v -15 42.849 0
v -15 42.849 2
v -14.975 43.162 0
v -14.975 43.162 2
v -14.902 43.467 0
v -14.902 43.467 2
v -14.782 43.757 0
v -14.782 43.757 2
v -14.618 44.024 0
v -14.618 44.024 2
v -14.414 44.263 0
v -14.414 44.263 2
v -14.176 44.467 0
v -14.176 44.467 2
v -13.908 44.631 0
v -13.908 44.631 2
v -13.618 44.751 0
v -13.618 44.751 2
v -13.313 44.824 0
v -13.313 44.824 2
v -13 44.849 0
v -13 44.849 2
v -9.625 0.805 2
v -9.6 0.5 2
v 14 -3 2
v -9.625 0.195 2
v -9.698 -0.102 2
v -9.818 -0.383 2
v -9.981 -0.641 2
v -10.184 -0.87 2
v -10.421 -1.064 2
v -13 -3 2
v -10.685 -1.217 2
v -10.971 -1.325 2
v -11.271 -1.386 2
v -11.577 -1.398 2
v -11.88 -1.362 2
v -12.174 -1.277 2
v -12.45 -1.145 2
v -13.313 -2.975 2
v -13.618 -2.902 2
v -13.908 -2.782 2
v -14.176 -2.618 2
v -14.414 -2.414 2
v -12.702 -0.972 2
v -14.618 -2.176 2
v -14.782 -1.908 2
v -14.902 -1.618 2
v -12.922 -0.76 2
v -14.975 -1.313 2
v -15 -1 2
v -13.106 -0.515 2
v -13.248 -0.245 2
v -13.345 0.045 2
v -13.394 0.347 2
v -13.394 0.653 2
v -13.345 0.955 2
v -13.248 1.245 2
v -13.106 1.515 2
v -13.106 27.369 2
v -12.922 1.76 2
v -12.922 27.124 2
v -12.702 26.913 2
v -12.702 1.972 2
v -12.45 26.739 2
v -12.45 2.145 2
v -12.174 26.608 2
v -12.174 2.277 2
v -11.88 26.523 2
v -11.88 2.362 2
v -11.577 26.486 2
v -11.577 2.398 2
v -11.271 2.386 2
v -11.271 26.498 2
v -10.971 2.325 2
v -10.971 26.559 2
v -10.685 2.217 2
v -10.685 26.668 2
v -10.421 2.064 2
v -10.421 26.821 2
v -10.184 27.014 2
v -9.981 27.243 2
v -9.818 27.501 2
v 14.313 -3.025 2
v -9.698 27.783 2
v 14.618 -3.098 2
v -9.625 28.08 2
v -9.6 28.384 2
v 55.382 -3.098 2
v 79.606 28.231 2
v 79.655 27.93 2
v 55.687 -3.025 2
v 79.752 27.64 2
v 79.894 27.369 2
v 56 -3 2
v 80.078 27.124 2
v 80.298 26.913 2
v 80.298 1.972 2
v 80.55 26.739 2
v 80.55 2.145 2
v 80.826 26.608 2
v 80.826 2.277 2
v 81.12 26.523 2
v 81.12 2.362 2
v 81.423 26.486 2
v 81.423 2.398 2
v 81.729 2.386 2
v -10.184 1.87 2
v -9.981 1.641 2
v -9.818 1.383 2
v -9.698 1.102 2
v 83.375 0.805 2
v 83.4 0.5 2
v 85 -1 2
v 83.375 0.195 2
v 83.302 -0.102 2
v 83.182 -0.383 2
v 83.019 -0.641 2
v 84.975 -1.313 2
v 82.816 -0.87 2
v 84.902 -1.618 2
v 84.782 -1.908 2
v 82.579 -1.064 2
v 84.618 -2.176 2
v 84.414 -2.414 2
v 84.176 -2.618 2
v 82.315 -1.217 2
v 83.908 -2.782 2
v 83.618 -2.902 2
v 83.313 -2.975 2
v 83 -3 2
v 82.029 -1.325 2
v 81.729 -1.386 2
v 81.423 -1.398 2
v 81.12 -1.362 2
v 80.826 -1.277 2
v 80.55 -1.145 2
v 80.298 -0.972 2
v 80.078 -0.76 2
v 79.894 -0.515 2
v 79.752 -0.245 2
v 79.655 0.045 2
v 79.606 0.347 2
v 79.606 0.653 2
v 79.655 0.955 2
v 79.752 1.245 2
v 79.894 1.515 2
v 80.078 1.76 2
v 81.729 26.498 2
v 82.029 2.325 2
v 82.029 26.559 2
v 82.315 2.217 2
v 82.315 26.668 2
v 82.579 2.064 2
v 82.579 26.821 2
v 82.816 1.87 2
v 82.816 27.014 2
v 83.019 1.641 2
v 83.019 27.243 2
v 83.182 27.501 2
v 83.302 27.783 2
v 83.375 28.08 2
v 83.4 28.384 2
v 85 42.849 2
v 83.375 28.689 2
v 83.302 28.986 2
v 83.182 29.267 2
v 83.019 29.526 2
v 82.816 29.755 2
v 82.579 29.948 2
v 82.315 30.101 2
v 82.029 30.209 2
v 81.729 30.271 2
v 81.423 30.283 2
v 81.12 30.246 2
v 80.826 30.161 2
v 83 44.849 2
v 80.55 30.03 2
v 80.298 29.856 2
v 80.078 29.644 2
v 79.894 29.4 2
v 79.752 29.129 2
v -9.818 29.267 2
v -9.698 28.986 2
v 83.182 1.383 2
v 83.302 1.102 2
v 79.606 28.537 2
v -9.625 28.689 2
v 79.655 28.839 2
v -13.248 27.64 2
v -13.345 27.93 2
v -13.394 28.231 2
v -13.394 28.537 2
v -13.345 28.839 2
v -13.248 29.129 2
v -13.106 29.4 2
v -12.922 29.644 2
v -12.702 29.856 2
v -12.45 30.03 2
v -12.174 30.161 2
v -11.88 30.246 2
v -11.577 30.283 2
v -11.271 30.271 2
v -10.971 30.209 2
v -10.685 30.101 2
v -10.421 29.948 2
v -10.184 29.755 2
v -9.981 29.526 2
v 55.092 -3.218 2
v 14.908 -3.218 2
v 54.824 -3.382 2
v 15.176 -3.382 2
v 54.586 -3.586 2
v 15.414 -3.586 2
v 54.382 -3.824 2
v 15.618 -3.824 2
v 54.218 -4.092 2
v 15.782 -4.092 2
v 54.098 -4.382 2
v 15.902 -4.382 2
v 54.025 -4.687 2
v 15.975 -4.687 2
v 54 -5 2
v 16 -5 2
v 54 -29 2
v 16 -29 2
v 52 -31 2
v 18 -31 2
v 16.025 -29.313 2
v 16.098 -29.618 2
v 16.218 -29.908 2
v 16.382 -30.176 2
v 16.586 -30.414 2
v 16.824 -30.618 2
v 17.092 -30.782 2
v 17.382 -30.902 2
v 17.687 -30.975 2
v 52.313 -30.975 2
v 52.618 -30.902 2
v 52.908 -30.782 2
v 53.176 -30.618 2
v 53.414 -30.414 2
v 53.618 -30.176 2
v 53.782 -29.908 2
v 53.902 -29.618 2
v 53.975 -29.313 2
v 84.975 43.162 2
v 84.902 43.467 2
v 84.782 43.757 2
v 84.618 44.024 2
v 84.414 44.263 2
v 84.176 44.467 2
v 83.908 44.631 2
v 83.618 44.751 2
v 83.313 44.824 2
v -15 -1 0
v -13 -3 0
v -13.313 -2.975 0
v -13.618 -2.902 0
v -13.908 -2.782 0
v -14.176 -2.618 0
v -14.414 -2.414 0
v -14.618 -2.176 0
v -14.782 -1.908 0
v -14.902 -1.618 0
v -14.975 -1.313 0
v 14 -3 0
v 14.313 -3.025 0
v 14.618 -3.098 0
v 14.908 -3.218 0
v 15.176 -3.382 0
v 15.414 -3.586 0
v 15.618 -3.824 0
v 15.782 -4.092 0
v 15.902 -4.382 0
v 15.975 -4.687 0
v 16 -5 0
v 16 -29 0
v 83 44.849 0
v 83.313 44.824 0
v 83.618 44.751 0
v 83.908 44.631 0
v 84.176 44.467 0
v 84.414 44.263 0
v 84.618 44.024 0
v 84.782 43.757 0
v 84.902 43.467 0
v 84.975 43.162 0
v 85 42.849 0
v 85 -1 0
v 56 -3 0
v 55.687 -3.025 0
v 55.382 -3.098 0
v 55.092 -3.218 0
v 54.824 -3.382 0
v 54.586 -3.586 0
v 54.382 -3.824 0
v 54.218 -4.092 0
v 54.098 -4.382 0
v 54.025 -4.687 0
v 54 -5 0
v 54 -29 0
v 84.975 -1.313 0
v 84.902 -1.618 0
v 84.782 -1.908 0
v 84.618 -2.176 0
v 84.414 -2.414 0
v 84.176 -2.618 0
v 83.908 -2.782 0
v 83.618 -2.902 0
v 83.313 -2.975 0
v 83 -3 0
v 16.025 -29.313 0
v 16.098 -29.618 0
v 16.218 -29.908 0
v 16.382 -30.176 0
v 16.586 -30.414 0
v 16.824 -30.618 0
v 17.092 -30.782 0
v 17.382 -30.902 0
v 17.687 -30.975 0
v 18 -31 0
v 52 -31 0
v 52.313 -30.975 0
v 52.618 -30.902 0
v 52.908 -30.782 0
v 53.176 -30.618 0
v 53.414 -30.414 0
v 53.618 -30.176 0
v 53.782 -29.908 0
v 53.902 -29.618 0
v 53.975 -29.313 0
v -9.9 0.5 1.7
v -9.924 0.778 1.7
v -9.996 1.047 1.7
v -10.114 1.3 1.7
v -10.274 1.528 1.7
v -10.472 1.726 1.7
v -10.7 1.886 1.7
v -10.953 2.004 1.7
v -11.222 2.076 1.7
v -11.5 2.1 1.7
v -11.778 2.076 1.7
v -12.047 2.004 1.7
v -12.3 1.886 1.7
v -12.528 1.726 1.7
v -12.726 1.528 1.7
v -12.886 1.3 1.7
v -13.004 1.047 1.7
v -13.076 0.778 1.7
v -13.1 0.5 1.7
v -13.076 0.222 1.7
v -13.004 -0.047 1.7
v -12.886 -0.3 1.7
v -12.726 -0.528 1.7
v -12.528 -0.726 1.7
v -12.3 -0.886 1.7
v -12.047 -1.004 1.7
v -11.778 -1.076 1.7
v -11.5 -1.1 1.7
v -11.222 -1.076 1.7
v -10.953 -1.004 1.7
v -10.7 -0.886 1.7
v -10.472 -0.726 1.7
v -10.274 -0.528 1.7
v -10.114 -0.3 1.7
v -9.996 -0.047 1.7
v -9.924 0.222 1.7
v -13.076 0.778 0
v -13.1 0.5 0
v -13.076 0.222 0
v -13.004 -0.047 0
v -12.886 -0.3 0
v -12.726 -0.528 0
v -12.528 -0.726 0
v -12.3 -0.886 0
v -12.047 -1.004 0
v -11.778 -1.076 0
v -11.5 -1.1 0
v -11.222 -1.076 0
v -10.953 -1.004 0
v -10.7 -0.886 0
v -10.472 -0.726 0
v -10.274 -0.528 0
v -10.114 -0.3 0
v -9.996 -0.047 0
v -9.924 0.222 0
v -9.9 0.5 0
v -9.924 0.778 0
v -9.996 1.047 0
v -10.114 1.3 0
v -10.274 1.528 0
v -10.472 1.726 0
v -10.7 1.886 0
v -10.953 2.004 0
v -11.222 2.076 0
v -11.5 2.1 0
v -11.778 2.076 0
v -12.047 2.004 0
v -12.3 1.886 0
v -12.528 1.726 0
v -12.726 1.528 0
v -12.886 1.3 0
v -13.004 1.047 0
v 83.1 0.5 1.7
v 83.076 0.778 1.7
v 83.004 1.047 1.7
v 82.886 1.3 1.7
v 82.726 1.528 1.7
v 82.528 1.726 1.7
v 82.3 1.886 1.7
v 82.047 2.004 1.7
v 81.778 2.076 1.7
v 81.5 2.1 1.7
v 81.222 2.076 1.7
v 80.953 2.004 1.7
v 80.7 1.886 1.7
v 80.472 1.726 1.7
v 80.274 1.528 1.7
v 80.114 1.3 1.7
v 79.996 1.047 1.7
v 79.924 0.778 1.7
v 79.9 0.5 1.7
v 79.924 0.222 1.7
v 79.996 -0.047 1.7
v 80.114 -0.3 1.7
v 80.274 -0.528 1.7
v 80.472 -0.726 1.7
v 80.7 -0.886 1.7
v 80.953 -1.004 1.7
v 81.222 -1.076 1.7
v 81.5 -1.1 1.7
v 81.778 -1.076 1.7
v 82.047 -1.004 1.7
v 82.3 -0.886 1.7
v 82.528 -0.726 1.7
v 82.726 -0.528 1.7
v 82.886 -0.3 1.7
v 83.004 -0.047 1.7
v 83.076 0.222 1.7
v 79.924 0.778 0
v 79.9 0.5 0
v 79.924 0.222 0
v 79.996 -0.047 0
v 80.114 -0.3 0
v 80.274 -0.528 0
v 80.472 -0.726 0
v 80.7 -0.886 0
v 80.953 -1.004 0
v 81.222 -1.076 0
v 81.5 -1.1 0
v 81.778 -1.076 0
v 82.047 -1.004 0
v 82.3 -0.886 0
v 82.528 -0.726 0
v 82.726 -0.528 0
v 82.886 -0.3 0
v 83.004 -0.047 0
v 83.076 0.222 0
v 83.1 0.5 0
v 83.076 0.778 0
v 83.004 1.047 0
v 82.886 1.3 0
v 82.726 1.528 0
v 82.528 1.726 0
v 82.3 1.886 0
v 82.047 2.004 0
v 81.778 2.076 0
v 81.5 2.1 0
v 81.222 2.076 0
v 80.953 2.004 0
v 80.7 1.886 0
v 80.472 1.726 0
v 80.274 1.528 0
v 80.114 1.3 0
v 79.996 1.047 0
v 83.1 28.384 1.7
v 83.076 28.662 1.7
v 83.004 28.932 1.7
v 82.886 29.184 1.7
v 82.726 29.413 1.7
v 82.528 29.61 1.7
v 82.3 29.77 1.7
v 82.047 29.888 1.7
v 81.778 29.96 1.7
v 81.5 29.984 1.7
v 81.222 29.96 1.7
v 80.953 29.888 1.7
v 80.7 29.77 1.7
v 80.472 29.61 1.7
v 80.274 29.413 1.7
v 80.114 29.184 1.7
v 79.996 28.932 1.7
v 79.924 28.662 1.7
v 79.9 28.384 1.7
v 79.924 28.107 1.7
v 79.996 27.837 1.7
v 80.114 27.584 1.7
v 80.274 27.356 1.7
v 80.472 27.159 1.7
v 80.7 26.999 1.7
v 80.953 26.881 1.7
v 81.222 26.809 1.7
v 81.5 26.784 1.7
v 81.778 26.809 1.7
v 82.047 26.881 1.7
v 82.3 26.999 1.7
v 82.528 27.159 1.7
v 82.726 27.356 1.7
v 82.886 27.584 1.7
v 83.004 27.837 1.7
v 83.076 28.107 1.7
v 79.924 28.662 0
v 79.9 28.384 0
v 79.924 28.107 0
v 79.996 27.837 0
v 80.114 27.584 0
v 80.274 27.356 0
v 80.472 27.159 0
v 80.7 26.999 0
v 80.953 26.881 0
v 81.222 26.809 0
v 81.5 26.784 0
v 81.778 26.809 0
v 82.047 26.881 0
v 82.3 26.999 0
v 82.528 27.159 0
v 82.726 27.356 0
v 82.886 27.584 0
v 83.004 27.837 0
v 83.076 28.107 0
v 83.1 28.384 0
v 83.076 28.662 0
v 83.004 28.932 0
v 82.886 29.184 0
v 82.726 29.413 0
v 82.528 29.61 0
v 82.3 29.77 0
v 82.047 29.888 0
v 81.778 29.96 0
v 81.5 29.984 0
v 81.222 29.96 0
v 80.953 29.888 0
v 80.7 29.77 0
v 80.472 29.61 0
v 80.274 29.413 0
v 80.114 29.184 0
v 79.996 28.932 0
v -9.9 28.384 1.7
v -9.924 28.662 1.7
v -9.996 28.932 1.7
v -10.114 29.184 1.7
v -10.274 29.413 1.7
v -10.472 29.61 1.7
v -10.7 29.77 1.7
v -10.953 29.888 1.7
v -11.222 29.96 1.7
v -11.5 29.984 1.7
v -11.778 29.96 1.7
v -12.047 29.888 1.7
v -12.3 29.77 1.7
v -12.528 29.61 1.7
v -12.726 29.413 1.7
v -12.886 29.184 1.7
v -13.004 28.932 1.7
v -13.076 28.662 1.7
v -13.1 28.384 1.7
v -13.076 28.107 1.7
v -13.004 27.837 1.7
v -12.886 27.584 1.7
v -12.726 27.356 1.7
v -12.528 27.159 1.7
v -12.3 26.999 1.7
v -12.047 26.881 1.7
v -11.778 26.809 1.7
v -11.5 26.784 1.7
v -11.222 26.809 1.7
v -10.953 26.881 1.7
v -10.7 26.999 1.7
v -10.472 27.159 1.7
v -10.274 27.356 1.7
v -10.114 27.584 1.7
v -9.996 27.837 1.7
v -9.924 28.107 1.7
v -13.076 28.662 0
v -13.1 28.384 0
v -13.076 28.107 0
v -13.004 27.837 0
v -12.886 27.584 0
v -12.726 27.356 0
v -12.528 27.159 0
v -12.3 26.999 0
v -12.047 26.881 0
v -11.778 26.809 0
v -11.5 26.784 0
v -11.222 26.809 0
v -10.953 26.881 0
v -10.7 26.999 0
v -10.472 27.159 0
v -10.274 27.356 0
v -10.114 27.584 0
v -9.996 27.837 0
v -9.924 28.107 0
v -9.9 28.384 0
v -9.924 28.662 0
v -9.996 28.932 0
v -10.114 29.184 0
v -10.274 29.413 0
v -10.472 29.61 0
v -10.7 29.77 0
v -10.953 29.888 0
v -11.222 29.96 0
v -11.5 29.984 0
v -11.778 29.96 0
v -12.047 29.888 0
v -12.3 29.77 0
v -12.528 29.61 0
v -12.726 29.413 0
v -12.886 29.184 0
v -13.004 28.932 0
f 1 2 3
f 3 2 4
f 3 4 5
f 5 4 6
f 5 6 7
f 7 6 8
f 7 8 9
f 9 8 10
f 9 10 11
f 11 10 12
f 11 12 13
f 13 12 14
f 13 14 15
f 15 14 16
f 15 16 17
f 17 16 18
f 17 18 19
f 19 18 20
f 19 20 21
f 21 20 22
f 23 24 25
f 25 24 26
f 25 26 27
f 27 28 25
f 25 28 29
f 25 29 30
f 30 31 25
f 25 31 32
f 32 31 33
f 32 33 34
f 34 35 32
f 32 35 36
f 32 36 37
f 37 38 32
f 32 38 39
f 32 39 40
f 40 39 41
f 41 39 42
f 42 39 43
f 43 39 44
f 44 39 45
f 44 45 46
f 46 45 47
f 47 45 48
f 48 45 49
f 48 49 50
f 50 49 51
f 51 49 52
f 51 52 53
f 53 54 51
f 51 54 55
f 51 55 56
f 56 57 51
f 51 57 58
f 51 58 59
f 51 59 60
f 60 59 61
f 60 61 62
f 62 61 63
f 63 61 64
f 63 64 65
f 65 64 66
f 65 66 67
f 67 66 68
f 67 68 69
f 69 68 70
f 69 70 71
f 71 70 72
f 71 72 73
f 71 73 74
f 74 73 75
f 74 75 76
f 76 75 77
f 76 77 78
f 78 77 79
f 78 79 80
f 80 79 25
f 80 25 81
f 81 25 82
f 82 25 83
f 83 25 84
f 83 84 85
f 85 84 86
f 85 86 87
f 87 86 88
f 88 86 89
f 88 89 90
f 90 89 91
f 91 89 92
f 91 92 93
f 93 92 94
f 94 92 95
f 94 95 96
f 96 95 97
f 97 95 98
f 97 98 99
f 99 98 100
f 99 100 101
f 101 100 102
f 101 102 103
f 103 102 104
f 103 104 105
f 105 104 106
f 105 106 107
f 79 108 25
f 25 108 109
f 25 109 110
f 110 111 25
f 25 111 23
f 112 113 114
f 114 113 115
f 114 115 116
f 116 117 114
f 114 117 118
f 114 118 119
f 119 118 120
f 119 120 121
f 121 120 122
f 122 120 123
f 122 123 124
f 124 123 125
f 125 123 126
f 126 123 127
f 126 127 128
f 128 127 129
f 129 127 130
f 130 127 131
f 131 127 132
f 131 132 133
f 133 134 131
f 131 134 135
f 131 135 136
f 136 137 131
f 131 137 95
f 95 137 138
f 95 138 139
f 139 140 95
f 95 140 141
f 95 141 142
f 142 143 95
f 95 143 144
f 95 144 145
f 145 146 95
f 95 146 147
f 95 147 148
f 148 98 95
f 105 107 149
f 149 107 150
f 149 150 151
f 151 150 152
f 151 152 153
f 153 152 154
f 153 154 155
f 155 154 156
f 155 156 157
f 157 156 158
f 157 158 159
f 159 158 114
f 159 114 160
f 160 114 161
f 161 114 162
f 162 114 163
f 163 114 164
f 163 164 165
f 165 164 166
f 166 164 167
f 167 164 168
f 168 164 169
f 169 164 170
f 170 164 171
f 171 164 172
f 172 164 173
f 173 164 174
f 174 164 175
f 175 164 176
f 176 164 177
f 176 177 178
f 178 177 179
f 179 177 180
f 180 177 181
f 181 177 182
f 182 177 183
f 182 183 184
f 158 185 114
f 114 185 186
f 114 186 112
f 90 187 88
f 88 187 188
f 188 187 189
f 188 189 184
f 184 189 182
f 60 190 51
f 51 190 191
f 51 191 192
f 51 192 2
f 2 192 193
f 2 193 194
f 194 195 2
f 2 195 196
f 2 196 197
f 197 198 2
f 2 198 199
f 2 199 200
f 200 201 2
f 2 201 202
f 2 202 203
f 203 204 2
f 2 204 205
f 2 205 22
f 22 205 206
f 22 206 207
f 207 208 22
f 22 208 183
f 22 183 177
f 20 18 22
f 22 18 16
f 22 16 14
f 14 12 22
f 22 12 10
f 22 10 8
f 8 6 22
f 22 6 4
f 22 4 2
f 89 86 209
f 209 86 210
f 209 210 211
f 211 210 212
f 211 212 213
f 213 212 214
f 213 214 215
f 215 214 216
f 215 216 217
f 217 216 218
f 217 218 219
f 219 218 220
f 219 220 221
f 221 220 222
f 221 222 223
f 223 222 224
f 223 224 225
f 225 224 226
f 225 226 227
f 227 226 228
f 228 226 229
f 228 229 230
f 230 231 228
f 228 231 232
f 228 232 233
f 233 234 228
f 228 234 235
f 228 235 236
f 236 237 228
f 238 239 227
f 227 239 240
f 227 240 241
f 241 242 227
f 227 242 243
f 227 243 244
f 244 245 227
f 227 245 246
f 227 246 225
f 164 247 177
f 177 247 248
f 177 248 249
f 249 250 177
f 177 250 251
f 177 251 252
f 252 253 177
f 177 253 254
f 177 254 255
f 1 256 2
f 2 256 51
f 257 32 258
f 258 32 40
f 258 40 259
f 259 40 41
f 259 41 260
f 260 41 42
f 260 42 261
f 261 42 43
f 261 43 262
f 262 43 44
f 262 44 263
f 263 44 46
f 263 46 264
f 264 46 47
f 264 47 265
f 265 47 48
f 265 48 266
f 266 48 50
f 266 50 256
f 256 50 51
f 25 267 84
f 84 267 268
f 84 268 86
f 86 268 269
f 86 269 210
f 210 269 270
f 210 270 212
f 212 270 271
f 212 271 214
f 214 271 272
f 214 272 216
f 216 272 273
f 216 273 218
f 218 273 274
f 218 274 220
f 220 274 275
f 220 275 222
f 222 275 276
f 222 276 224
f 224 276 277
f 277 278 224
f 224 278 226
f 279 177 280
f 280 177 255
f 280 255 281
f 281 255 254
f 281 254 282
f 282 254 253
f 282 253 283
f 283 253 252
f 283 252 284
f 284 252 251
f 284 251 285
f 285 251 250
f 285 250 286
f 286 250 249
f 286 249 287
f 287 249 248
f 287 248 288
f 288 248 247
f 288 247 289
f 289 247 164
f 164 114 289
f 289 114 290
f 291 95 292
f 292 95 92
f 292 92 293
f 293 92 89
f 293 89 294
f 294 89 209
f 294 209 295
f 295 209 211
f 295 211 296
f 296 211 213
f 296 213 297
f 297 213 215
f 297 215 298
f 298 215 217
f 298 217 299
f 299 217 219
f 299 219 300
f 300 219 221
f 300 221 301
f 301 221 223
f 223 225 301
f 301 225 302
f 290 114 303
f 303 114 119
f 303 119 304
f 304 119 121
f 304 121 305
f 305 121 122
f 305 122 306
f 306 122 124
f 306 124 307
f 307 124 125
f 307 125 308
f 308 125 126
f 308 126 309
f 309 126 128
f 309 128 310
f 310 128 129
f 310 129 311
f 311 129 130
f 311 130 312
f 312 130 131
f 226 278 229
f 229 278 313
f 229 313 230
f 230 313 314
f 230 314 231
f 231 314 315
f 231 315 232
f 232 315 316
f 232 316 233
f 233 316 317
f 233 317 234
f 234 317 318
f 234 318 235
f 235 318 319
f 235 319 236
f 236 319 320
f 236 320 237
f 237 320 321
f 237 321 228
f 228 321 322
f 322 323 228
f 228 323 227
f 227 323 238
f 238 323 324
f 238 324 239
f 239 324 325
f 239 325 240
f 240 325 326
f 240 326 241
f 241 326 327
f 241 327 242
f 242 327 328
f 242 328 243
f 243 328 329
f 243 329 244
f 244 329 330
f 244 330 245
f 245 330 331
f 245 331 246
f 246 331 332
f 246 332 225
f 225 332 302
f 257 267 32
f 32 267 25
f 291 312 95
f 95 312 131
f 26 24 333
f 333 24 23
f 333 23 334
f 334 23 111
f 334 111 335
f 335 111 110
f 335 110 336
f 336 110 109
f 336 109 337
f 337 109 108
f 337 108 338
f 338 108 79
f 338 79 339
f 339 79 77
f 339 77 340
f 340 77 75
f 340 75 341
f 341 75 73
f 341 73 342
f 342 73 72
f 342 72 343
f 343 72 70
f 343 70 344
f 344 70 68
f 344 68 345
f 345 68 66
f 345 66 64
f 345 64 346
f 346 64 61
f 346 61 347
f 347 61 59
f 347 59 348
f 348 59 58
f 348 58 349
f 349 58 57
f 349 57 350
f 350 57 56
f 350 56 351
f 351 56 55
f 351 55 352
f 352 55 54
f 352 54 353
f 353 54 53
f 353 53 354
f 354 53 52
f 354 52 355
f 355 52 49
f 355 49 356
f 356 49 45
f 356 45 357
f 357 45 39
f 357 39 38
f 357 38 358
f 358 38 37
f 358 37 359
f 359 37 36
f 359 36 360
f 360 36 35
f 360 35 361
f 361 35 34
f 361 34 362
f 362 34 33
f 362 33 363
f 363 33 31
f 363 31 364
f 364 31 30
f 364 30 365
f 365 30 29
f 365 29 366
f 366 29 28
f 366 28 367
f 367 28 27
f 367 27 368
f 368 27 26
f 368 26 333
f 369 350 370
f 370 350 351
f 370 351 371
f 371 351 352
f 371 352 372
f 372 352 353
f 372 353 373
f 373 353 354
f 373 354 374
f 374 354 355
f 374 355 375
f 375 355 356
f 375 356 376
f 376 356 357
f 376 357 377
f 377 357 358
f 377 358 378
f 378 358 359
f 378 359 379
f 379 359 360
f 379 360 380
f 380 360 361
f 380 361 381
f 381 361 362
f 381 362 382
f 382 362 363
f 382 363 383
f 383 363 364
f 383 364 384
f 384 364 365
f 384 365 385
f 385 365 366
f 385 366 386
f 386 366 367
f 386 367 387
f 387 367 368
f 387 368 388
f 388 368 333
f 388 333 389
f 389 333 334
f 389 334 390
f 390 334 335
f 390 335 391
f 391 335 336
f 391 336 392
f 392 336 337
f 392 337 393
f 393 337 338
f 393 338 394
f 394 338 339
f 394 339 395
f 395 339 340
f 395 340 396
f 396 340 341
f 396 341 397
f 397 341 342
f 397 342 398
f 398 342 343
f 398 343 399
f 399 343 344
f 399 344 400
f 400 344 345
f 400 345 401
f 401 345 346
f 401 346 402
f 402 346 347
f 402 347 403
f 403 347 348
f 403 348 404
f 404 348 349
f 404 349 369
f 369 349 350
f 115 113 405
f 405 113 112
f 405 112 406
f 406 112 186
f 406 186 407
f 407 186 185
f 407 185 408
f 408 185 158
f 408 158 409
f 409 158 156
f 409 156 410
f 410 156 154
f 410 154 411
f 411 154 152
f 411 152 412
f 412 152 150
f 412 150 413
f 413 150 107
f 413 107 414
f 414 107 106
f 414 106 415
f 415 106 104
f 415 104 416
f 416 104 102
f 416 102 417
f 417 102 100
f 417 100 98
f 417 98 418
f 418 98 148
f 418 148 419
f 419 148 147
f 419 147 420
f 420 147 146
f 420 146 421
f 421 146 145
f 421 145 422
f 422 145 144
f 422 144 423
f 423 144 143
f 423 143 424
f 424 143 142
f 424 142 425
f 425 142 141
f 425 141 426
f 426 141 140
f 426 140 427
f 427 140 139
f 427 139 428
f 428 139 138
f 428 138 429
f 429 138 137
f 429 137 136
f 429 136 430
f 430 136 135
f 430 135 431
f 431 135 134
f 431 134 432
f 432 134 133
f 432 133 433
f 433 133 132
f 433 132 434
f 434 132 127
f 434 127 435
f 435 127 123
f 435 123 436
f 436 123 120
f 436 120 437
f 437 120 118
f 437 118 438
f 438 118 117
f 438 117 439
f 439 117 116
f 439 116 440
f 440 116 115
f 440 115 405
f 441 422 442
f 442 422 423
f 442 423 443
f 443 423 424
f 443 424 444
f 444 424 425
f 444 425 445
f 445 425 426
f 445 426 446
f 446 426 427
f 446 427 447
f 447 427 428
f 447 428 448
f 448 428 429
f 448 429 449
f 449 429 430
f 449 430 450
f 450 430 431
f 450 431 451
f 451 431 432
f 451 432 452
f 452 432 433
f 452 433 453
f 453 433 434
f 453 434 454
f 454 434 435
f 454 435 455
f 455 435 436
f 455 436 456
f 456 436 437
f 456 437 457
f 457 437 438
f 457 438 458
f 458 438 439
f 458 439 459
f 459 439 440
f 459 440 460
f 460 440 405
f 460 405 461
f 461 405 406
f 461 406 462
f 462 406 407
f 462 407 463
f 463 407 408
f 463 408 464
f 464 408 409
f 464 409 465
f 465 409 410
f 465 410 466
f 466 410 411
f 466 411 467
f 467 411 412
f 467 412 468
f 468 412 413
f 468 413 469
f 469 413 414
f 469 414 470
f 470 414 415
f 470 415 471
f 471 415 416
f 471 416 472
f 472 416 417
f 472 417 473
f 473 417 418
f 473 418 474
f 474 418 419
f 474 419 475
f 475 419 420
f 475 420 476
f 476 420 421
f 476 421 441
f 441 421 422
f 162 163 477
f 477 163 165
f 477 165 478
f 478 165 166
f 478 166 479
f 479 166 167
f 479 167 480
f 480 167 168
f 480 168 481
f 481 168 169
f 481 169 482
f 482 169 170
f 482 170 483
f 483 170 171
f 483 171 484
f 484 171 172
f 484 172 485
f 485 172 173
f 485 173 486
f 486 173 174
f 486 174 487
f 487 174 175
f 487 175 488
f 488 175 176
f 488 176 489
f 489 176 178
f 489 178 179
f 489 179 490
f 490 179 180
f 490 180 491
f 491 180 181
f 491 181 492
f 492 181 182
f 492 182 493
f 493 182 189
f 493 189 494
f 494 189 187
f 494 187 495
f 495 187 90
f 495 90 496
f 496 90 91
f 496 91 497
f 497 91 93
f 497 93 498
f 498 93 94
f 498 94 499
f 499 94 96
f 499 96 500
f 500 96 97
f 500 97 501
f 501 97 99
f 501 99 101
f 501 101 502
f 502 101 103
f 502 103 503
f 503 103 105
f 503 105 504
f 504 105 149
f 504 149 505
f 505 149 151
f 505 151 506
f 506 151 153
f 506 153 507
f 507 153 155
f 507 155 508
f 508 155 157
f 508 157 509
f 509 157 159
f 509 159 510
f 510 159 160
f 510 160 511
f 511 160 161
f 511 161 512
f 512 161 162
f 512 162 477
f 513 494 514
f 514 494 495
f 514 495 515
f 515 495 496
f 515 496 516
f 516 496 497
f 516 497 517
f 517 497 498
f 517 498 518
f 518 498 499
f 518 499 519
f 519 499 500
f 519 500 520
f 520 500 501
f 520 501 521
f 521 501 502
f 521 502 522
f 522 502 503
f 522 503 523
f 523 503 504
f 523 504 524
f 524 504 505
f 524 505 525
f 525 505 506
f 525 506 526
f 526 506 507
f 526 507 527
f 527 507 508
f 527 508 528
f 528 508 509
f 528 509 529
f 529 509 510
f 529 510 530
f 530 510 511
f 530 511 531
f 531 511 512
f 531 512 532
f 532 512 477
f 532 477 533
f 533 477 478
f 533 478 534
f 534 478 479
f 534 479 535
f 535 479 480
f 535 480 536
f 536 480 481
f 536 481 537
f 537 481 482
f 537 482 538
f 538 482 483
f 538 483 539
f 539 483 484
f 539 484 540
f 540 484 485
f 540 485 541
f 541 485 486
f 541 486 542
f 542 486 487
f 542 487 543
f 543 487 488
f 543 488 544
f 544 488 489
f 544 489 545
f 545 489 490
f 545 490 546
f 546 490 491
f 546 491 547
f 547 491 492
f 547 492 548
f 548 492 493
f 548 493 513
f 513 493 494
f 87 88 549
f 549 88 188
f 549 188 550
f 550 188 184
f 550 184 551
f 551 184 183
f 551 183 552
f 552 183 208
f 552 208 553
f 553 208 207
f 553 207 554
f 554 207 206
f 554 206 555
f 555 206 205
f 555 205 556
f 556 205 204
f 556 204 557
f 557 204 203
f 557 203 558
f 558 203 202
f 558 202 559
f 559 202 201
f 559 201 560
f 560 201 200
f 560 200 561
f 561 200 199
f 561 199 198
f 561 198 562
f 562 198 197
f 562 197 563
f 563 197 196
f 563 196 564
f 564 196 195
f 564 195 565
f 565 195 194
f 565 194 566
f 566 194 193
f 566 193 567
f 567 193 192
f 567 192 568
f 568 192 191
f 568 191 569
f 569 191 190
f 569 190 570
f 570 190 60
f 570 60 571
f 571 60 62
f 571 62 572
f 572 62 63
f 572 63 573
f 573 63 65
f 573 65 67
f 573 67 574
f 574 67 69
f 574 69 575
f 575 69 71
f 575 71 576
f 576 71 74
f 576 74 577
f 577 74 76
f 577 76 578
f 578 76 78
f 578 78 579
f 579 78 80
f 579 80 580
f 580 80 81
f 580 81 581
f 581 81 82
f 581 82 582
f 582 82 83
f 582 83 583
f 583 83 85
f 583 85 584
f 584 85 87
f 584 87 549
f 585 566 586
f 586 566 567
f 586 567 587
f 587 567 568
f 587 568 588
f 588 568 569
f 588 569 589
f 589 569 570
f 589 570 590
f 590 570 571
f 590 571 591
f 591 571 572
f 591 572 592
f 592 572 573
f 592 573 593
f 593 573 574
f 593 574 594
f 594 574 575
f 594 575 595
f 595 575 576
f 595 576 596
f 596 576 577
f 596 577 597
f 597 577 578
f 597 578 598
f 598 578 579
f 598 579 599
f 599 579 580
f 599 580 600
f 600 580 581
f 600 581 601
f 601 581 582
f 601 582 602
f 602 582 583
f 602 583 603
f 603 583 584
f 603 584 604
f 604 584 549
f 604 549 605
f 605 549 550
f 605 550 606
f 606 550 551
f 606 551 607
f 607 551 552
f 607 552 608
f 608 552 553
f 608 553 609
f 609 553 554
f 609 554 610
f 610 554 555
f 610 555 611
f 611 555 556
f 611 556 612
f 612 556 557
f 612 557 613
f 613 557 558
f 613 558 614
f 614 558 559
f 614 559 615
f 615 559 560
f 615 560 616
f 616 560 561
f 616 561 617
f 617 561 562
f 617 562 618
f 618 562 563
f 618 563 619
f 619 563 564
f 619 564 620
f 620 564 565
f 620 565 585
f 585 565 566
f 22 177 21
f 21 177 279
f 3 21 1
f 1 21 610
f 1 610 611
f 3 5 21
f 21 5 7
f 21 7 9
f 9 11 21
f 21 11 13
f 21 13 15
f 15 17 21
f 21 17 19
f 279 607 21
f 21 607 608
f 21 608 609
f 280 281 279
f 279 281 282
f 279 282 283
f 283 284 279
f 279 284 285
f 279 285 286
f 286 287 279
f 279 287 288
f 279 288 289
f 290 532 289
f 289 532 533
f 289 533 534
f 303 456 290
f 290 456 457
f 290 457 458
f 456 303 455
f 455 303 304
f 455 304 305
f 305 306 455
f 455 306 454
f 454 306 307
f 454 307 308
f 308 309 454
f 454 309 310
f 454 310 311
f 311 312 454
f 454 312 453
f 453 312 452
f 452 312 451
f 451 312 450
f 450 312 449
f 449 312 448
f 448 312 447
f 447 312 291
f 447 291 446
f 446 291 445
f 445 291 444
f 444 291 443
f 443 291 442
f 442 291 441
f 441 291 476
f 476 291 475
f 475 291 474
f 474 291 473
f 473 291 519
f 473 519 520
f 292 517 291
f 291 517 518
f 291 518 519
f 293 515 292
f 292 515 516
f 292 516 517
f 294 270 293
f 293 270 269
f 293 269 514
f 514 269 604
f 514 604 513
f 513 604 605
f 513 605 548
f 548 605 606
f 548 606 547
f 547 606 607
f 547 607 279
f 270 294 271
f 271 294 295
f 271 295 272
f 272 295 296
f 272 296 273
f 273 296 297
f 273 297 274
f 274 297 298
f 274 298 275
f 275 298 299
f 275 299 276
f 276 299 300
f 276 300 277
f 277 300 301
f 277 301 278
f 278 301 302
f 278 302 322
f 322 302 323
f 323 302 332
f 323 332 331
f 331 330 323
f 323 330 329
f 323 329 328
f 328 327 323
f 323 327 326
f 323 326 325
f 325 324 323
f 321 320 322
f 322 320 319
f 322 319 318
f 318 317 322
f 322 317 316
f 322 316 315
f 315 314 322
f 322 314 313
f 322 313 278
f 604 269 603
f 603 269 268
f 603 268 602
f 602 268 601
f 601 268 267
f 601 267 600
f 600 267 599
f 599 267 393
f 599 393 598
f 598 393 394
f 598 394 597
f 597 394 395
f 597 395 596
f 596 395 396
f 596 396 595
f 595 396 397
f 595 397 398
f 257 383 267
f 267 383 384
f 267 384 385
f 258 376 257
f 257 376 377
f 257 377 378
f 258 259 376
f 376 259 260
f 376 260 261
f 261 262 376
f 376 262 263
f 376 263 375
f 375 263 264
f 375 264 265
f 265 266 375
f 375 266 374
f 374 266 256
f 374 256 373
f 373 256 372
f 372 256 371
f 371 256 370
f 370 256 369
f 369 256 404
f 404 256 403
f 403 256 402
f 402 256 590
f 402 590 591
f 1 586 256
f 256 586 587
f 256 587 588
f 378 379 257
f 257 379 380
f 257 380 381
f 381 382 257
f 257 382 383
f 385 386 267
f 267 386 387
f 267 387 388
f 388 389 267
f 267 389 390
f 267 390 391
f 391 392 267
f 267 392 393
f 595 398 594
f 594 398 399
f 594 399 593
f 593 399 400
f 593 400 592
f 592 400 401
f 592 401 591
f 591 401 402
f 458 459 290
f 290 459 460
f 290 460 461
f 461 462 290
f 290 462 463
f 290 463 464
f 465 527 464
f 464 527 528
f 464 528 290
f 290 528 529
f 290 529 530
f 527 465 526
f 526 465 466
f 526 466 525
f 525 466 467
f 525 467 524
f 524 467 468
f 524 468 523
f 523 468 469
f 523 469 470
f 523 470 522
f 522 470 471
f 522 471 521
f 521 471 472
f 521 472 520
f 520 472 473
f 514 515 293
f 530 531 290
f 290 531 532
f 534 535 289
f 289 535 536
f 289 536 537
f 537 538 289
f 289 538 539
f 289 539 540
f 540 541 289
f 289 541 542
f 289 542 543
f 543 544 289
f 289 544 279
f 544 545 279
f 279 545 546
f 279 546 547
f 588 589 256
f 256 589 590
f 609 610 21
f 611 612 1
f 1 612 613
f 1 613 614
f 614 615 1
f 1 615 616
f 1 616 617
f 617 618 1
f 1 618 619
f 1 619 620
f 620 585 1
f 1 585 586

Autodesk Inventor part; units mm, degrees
ref_plane "YZ Plane" through (0, 0, 0) normal (1, 0, 0) x (0, 1, 0)
ref_plane "XZ Plane" through (0, 0, 0) normal (0, 1, 0) x (-1, 0, 0)
ref_plane "XY Plane" through (0, 0, 0) normal (0, 0, 1) x (1, 0, 0)
sketch "Szkic1" plane through (0, 0, 0) normal (0, 0, 1) x (1, 0, 0)
  line L0 (54, -15.2042) -> (54, -5) projected
  line L1 (18, -31) -> (52, -31) projected
  circle A0 centre (35, -25.5) radius 3.5 projected
  circle A1 centre (26, -7) radius 3.5 projected
  circle A2 centre (44, -7) radius 3.5 projected
  line L2 (18, -31) -> (52, -31) projected
  line L3 (54, -24.7958) -> (54, -29) projected
  line L4 (54, -15.2042) -> (54, -5) projected
  line L5 (52, -3) -> (18, -3) projected
  line L6 (16, -5) -> (16, -15.2042) projected
  line L7 (16, -24.7958) -> (16, -20) projected
  line L8 (85, -3) -> (85, 41.8489) projected
  line L9 (-15, 44.8489) -> (85, 44.8489) projected
  line L10 (-15, -3) -> (-15, 41.8489) projected
  line L11 (-15, -4) -> (15.8, -4)
  line L12 (85, 44.8489) -> (-15, 44.8489)
  line L13 (-15, 44.8489) -> (-15, -3)
  line L14 (-15, -3) -> (85, -3)
  line L15 (85, -3) -> (85, 44.8489)
  line L16 (52, -31) -> (16, -31)
  line L17 (16, -31) -> (16, -3)
  line L18 (16, -3) -> (52, -3)
  line L19 (52, -3) -> (52, -31)
  arc A3 (54, -5) -> (52, -3) centre (52, -5) ccw projected
  arc A4 (18, -3) -> (16, -5) centre (18, -5) ccw projected
  line L20 (16, -15.2042) -> (16, -20) projected
  line L21 (16, -29) -> (16, -24.7958) projected
  arc A5 (16, -29) -> (18, -31) centre (18, -29) ccw projected
  arc A6 (52, -31) -> (54, -29) centre (52, -29) ccw projected
  line L22 (54, -15.2042) -> (54, -24.7958) projected
  line L23 (54, -15.2042) -> (54, -15.2042) projected
  point P0 (0, 0)
  point P1 (54, -3)
  point P2 (52, -3)
extrude "Wyciągnięcie proste1" add sketch "Szkic1" along normal blind 2 contours L5 L14 L10 L13 L9 L15 L8
sketch "Szkic2" plane through (0, 0, 2) normal (0, 0, 1) x (1, 0, 0)
  circle A0 centre (81.5, 0.5) radius 2 projected
  circle A1 centre (81.5, 28.3844) radius 2 projected
  circle A2 centre (-11.5, 28.3844) radius 2 projected
  circle A3 centre (-11.5, 0.5) radius 2 projected
  point P0 (0, 0)
hole "Otwór1" at (81.5, 0.5, 2) at (81.5, 28.3844, 2) at (-11.5, 0.5, 2) at (-11.5, 28.3844, 2) direction (0, 0, -1) diameter 3.2 depth 7 tip angle 118 countersink diameter 3.8 countersink angle 90
sketch "Szkic3" plane through (0, 0, 2) normal (0, 0, 1) x (1, 0, 0)
  circle A0 centre (35, -25.5) radius 3.5 projected
  circle A1 centre (26, -7) radius 3.5 projected
  circle A2 centre (44, -7) radius 3.5 projected
  arc A3 (54, -5) -> (52, -3) centre (52, -5) ccw projected
  line L0 (52, -3) -> (18, -3) projected
  arc A4 (18, -3) -> (16, -5) centre (18, -5) ccw projected
  line L1 (16, -5) -> (16, -15.2042) projected
  line L2 (16, -15.2042) -> (16, -20) projected
  line L3 (16, -24.7958) -> (16, -20) projected
  line L4 (16, -29) -> (16, -24.7958) projected
  arc A5 (16, -29) -> (18, -31) centre (18, -29) ccw projected
  line L5 (18, -31) -> (52, -31) projected
  arc A6 (52, -31) -> (54, -29) centre (52, -29) ccw projected
  line L6 (54, -24.7958) -> (54, -29) projected
  line L7 (54, -20) -> (54, -24.7958) projected
  line L8 (54, -20) -> (54, -15.2042) projected
  line L9 (54, -15.2042) -> (54, -5) projected
  circle A7 centre (-11.5, 0.5) radius 1.9 projected
  circle A8 centre (81.5, 0.5) radius 1.9 projected
  circle A9 centre (81.5, 28.3844) radius 1.9 projected
  circle A10 centre (-11.5, 28.3844) radius 1.9 projected
  line L10 (85, 44.8489) -> (-15, 44.8489) projected
  line L11 (-15, 44.8489) -> (-15, -3) projected
  line L12 (-15, -3) -> (85, -3) projected
  line L13 (85, -3) -> (85, 44.8489) projected
  line L14 (16, -5) -> (16, -3)
  line L15 (54, -5) -> (54, -3)
  point P0 (0, 0)
  point P1 (52, -3)
extrude "Wyciągnięcie proste2" add sketch "Szkic3" against normal up to surface (2 mm away) contours A0 | A1 | A2 | L9 L8 L7 L6 A6 L5 A5 L4 L3 L2 L1 A4 L0 A3 | A3 L12 L15 | A4 L14 L12
fillet "Zaokrąglenie1" radius 2 6 edges at (85, -3, 1) (54, -3, 1) (85, 44.8489, 1) (16, -3, 1) (-15, -3, 1) (-15, 44.8489, 1)
properties part number "pokrywa"
